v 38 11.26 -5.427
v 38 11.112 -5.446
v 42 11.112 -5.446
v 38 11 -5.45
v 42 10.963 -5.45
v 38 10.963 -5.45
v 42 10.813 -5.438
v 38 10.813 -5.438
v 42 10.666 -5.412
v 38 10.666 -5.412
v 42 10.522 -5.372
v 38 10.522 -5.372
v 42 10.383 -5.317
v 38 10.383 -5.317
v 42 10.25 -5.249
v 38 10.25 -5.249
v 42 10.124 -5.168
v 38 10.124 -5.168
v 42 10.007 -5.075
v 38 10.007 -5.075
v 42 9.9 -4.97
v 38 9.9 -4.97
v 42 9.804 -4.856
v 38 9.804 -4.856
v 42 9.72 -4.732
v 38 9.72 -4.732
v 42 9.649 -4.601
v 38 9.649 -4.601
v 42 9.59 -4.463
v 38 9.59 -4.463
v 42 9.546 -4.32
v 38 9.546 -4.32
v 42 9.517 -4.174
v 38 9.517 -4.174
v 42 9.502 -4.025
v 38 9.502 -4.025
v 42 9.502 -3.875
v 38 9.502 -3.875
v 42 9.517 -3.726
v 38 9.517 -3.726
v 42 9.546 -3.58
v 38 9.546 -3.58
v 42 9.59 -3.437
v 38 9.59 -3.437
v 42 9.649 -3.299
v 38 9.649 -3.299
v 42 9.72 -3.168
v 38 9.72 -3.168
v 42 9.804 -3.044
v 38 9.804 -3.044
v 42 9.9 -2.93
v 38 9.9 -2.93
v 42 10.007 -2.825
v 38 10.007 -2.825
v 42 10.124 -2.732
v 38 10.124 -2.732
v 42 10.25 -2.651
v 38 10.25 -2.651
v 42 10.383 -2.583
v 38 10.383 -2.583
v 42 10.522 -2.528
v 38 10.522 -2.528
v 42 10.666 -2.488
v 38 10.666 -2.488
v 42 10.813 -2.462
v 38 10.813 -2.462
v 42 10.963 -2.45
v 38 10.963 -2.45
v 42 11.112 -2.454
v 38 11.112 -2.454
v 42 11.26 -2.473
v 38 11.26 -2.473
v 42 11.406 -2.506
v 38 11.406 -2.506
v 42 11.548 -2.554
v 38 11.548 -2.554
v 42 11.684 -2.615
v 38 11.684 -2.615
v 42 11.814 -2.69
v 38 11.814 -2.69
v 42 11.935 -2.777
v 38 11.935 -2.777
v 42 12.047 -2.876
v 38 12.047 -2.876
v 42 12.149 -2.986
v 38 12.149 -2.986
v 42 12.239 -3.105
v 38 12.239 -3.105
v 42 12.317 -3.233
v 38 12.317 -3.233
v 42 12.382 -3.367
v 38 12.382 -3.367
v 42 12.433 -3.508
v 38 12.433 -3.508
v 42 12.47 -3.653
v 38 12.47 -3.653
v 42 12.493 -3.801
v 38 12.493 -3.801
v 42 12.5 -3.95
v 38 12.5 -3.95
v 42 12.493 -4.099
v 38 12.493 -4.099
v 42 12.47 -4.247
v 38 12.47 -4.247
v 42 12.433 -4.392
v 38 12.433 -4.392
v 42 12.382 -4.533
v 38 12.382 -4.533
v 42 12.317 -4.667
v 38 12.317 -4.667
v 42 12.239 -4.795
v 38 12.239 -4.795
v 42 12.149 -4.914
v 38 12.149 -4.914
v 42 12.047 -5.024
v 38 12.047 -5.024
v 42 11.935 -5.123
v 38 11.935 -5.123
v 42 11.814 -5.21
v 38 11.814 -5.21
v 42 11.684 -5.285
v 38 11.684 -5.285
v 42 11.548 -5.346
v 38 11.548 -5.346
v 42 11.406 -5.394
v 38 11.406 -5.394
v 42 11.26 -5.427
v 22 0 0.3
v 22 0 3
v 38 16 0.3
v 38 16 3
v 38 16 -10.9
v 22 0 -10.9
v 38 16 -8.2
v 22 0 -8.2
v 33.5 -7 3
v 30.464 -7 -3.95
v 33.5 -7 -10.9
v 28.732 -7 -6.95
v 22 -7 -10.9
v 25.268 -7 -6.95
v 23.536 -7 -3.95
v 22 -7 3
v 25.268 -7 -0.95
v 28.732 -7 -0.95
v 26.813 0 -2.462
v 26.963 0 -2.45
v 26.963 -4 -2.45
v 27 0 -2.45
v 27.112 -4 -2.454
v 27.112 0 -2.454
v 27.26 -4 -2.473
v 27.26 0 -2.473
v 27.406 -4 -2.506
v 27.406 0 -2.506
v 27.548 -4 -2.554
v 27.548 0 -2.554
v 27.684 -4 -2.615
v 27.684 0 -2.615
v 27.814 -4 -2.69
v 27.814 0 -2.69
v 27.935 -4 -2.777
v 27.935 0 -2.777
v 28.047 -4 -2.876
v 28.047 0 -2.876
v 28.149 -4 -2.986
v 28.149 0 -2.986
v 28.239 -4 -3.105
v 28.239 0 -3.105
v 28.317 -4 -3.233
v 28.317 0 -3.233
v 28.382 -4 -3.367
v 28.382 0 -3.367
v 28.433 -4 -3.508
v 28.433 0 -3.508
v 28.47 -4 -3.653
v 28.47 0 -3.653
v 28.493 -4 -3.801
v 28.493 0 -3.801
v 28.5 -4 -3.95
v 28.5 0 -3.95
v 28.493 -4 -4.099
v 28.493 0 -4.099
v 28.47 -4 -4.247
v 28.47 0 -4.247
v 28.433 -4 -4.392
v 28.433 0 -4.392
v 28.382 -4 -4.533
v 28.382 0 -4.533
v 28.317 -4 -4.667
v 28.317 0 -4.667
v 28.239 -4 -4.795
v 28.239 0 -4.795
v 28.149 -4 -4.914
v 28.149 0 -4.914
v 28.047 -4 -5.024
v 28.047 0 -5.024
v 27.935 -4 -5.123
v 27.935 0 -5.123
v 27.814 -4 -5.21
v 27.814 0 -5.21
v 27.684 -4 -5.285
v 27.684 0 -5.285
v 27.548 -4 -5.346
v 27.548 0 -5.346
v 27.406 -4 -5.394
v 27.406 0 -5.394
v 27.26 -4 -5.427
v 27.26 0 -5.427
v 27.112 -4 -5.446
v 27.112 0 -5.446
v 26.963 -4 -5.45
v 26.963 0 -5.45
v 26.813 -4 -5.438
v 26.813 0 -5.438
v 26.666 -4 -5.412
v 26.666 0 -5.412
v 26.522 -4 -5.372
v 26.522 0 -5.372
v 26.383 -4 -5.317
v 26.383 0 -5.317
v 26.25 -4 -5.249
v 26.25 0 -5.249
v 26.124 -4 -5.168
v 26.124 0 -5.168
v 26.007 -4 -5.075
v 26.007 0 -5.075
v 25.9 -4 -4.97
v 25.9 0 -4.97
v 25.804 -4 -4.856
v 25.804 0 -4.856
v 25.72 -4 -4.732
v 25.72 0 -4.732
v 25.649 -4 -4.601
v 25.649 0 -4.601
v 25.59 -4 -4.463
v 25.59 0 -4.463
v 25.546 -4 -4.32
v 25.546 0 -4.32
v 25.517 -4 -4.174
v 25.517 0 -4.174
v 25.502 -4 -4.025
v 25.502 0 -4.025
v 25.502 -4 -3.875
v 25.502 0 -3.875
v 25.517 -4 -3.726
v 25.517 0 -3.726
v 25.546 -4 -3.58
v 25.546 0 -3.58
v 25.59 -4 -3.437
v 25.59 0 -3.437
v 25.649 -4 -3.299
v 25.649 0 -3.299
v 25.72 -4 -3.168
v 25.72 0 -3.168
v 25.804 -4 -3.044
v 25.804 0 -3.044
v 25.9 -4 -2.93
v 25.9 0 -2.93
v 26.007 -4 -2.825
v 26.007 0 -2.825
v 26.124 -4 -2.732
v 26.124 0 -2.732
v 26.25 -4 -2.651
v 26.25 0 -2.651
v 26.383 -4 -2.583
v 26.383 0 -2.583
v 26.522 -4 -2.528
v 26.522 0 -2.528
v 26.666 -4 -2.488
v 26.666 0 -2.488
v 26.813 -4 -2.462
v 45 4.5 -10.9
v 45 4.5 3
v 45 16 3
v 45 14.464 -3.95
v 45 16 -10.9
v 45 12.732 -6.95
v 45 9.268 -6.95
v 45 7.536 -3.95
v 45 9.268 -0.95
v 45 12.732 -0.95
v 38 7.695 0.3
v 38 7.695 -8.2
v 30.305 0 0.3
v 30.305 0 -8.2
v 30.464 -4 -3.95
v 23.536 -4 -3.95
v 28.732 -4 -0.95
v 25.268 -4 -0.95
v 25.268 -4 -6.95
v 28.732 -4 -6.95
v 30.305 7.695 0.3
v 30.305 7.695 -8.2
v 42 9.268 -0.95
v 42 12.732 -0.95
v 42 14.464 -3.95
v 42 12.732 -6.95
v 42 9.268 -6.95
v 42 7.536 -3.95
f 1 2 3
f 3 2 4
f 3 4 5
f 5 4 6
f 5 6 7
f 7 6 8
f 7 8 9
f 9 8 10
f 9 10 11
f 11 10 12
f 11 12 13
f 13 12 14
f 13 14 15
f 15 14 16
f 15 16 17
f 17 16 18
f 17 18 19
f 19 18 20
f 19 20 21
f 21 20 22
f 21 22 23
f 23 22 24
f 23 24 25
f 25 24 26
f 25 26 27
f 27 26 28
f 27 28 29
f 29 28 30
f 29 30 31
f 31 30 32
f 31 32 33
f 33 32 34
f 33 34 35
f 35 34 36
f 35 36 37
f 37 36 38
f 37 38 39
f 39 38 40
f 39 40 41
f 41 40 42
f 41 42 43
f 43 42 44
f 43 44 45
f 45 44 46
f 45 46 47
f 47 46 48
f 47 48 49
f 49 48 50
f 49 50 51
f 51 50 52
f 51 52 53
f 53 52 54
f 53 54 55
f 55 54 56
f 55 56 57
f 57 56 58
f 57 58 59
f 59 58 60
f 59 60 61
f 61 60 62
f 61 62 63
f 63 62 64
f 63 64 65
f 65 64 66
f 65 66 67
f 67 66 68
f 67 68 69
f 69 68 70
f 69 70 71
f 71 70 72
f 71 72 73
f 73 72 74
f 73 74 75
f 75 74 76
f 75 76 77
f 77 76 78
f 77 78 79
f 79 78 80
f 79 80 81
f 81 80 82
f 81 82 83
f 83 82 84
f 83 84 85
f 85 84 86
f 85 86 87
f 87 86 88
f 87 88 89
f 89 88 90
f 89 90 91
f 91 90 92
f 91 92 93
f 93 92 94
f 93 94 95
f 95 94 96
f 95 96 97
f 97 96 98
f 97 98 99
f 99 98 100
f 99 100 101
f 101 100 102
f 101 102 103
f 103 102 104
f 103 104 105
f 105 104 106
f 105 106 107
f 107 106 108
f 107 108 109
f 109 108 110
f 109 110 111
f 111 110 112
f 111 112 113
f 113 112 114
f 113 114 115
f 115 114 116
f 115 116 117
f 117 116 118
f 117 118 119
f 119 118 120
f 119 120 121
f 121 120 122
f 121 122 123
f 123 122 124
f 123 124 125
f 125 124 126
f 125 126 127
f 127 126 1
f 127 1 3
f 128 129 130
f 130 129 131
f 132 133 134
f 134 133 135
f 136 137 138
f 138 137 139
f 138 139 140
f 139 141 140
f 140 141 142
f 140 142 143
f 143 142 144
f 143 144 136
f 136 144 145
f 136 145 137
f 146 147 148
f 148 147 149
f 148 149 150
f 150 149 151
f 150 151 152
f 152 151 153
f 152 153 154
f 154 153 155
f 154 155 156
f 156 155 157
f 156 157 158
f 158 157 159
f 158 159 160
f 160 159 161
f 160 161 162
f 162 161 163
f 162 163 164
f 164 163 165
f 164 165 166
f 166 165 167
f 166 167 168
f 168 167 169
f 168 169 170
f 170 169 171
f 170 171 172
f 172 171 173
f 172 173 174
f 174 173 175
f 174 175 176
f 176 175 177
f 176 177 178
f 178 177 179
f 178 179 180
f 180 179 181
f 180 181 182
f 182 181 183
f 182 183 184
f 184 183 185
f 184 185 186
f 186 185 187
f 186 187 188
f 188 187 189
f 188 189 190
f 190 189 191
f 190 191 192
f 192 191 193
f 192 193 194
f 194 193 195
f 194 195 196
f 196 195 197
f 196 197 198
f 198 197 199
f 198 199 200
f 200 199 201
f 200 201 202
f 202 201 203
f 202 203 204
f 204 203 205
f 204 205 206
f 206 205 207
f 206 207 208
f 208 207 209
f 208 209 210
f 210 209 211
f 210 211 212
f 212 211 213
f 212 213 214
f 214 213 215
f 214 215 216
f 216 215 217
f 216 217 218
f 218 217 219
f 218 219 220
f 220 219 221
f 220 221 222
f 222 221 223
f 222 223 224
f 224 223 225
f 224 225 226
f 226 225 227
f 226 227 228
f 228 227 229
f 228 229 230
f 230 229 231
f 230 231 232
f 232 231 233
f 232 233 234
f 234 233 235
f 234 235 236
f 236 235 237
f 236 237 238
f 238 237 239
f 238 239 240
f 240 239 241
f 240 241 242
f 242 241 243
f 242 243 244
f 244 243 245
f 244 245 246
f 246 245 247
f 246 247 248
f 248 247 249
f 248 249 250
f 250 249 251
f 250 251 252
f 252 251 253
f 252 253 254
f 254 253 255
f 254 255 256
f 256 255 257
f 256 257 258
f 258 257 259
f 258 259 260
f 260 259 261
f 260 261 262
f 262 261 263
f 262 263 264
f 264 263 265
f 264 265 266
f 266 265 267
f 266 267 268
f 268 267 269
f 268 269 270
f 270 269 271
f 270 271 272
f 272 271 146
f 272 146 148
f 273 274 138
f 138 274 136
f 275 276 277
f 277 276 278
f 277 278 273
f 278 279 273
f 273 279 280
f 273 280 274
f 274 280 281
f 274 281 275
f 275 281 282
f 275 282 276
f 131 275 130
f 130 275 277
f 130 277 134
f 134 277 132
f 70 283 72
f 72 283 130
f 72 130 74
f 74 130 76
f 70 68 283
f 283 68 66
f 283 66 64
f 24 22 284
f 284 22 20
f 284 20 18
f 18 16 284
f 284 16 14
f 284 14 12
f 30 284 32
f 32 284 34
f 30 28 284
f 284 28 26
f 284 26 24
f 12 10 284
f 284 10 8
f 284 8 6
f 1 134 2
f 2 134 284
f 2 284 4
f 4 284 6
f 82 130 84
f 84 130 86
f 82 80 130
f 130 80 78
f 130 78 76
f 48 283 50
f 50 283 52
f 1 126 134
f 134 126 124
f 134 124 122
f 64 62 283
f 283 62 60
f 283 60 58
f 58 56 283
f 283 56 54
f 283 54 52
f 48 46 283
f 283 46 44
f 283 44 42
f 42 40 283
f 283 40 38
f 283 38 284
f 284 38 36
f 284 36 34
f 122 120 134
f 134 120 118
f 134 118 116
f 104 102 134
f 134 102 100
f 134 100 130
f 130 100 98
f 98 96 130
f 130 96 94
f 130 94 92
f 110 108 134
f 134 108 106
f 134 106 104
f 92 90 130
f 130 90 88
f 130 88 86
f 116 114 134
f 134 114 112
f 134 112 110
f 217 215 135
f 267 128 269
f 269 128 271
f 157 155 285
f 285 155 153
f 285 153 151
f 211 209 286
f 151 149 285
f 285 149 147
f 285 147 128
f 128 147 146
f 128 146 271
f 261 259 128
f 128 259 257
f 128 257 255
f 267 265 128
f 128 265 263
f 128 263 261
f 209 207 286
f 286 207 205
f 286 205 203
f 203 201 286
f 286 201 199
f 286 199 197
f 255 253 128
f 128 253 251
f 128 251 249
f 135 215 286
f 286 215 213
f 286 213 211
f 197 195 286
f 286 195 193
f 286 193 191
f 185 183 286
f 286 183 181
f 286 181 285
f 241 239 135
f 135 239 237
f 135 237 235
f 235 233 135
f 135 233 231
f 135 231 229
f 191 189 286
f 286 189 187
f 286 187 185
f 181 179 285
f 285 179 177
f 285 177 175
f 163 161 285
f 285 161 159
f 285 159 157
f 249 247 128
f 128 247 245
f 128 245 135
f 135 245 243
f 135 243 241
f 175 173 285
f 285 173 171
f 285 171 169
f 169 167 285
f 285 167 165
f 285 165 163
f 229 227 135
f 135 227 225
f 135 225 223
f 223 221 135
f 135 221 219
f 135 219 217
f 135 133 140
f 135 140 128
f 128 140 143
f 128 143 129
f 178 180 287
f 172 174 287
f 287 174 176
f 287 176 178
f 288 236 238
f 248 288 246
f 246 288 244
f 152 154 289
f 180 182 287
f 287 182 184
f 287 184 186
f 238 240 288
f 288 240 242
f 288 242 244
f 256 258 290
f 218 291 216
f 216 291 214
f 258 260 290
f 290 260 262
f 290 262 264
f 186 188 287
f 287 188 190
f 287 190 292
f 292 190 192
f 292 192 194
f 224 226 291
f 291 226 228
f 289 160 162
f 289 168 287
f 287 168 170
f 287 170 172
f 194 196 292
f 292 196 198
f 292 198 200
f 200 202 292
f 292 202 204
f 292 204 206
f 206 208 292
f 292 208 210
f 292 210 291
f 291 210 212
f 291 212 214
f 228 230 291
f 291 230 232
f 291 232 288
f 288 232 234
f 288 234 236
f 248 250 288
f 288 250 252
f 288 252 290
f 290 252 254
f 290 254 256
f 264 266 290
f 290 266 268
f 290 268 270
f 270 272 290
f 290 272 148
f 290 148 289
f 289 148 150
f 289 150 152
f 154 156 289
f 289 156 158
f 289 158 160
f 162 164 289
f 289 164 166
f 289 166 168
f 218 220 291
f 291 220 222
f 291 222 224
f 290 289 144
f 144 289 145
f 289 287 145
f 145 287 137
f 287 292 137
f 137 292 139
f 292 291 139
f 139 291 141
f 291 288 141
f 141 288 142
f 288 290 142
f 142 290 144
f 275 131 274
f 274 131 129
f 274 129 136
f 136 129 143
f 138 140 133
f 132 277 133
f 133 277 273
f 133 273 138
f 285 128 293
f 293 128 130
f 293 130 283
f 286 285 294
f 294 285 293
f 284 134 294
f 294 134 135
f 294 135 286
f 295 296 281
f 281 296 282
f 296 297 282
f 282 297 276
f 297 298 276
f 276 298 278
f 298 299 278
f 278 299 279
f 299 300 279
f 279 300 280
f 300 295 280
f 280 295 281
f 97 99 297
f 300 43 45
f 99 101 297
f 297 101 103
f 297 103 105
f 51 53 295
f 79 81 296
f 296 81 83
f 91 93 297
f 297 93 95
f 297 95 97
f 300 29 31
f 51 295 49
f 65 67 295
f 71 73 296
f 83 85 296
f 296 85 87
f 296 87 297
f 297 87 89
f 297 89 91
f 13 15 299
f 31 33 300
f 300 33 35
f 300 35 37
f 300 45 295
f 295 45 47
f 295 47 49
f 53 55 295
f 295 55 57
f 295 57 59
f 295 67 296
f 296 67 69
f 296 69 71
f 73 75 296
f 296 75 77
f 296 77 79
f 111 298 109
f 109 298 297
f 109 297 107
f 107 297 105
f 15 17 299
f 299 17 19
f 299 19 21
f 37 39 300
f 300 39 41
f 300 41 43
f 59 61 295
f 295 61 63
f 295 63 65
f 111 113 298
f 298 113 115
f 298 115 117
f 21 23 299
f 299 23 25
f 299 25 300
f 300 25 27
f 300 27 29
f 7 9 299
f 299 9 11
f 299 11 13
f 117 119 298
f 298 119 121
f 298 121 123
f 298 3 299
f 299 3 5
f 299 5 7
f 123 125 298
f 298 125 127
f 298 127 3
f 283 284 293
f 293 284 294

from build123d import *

# Parameters (mm, degrees)
BOSS_EXTRUDE1_DEPTH = 7.9
SKETCH2_R           = 1.5
CUT_EXTRUDE1_DEPTH  = 52.15085532
CUT_EXTRUDE3_DEPTH  = 3
BOSS_EXTRUDE2_DEPTH = 3
BOSS_EXTRUDE3_START = -7.9
BOSS_EXTRUDE3_DEPTH = 3
SKETCH5_W           = 8.304797865
SKETCH5_H           = 8.5
CUT_EXTRUDE4_DEPTH  = 49.987855638


with BuildPart() as part:
    # Sketch1 → Boss-Extrude1 (new body)
    with BuildSketch(Plane.XY):
        Polygon((30, 8), (30, 0), (22, 0), (22, -7), (33.5, -7), (45, 4.5), (45, 16), (38, 16), (38, 8), align=None)
    extrude(amount=-BOSS_EXTRUDE1_DEPTH)

    # Sketch2 → Cut-Extrude1 (cut, through all)
    with BuildSketch(Plane.XZ.offset(7)):
        with Locations((27, -3.95)):
            Circle(SKETCH2_R)
    cut_extrude1 = extrude(amount=-CUT_EXTRUDE1_DEPTH, mode=Mode.SUBTRACT)

    # Sketch3 → Cut-Extrude3 (cut)
    with BuildSketch(Plane(origin=(38, -7, 0), x_dir=(0, 0, -1), z_dir=(0, 1, 0))):
        Polygon((0.95, 12.732050808), (3.95, 14.464101615), (6.95, 12.732050808), (6.95, 9.267949192), (3.95, 7.535898385), (0.95, 9.267949192), align=None)
    cut_extrude3 = extrude(amount=CUT_EXTRUDE3_DEPTH, mode=Mode.SUBTRACT)

    # Sketch4 → Boss-Extrude2 (add)
    with BuildSketch(Plane.XY):
        Polygon((22, 0), (38, 16), (45, 16), (45, 4.5), (33.5, -7), (22, -7), align=None)
    extrude(amount=BOSS_EXTRUDE2_DEPTH)

    # Sketch4<3> → Boss-Extrude3 (add)
    with BuildSketch(Plane.XY.offset(BOSS_EXTRUDE3_START)):
        Polygon((30, 8), (22, 0), (30, 0), align=None)
        Polygon((30, 0), (22, 0), (22, -7), (33.5, -7), (45, 4.5), (45, 16), (38, 16), (38, 8), (30, 8), align=None)
        Polygon((38, 16), (30, 8), (38, 8), align=None)
    extrude(amount=-BOSS_EXTRUDE3_DEPTH)

    # Sketch5 → Cut-Extrude4 (cut, through all)
    with BuildSketch(Plane(origin=(0, 0, 0), x_dir=(1, 0, 0), z_dir=(0, 1, 0))):
        with Locations((26.152398932, 3.95)):
            Rectangle(SKETCH5_W, SKETCH5_H)
    cut_extrude4 = extrude(amount=CUT_EXTRUDE4_DEPTH, mode=Mode.SUBTRACT)

    # Mirror1: Cut-Extrude1, Cut-Extrude3, Cut-Extrude4 across plane
    add(cut_extrude1.mirror(Plane(origin=(19, 19, 0), x_dir=(0, 0, 1), z_dir=(0.707106781186547, 0.707106781186548, 0))), mode=Mode.SUBTRACT)
    add(cut_extrude3.mirror(Plane(origin=(19, 19, 0), x_dir=(0, 0, 1), z_dir=(0.707106781186547, 0.707106781186548, 0))), mode=Mode.SUBTRACT)
    add(cut_extrude4.mirror(Plane(origin=(19, 19, 0), x_dir=(0, 0, 1), z_dir=(0.707106781186547, 0.707106781186548, 0))), mode=Mode.SUBTRACT)


solid = part.part
